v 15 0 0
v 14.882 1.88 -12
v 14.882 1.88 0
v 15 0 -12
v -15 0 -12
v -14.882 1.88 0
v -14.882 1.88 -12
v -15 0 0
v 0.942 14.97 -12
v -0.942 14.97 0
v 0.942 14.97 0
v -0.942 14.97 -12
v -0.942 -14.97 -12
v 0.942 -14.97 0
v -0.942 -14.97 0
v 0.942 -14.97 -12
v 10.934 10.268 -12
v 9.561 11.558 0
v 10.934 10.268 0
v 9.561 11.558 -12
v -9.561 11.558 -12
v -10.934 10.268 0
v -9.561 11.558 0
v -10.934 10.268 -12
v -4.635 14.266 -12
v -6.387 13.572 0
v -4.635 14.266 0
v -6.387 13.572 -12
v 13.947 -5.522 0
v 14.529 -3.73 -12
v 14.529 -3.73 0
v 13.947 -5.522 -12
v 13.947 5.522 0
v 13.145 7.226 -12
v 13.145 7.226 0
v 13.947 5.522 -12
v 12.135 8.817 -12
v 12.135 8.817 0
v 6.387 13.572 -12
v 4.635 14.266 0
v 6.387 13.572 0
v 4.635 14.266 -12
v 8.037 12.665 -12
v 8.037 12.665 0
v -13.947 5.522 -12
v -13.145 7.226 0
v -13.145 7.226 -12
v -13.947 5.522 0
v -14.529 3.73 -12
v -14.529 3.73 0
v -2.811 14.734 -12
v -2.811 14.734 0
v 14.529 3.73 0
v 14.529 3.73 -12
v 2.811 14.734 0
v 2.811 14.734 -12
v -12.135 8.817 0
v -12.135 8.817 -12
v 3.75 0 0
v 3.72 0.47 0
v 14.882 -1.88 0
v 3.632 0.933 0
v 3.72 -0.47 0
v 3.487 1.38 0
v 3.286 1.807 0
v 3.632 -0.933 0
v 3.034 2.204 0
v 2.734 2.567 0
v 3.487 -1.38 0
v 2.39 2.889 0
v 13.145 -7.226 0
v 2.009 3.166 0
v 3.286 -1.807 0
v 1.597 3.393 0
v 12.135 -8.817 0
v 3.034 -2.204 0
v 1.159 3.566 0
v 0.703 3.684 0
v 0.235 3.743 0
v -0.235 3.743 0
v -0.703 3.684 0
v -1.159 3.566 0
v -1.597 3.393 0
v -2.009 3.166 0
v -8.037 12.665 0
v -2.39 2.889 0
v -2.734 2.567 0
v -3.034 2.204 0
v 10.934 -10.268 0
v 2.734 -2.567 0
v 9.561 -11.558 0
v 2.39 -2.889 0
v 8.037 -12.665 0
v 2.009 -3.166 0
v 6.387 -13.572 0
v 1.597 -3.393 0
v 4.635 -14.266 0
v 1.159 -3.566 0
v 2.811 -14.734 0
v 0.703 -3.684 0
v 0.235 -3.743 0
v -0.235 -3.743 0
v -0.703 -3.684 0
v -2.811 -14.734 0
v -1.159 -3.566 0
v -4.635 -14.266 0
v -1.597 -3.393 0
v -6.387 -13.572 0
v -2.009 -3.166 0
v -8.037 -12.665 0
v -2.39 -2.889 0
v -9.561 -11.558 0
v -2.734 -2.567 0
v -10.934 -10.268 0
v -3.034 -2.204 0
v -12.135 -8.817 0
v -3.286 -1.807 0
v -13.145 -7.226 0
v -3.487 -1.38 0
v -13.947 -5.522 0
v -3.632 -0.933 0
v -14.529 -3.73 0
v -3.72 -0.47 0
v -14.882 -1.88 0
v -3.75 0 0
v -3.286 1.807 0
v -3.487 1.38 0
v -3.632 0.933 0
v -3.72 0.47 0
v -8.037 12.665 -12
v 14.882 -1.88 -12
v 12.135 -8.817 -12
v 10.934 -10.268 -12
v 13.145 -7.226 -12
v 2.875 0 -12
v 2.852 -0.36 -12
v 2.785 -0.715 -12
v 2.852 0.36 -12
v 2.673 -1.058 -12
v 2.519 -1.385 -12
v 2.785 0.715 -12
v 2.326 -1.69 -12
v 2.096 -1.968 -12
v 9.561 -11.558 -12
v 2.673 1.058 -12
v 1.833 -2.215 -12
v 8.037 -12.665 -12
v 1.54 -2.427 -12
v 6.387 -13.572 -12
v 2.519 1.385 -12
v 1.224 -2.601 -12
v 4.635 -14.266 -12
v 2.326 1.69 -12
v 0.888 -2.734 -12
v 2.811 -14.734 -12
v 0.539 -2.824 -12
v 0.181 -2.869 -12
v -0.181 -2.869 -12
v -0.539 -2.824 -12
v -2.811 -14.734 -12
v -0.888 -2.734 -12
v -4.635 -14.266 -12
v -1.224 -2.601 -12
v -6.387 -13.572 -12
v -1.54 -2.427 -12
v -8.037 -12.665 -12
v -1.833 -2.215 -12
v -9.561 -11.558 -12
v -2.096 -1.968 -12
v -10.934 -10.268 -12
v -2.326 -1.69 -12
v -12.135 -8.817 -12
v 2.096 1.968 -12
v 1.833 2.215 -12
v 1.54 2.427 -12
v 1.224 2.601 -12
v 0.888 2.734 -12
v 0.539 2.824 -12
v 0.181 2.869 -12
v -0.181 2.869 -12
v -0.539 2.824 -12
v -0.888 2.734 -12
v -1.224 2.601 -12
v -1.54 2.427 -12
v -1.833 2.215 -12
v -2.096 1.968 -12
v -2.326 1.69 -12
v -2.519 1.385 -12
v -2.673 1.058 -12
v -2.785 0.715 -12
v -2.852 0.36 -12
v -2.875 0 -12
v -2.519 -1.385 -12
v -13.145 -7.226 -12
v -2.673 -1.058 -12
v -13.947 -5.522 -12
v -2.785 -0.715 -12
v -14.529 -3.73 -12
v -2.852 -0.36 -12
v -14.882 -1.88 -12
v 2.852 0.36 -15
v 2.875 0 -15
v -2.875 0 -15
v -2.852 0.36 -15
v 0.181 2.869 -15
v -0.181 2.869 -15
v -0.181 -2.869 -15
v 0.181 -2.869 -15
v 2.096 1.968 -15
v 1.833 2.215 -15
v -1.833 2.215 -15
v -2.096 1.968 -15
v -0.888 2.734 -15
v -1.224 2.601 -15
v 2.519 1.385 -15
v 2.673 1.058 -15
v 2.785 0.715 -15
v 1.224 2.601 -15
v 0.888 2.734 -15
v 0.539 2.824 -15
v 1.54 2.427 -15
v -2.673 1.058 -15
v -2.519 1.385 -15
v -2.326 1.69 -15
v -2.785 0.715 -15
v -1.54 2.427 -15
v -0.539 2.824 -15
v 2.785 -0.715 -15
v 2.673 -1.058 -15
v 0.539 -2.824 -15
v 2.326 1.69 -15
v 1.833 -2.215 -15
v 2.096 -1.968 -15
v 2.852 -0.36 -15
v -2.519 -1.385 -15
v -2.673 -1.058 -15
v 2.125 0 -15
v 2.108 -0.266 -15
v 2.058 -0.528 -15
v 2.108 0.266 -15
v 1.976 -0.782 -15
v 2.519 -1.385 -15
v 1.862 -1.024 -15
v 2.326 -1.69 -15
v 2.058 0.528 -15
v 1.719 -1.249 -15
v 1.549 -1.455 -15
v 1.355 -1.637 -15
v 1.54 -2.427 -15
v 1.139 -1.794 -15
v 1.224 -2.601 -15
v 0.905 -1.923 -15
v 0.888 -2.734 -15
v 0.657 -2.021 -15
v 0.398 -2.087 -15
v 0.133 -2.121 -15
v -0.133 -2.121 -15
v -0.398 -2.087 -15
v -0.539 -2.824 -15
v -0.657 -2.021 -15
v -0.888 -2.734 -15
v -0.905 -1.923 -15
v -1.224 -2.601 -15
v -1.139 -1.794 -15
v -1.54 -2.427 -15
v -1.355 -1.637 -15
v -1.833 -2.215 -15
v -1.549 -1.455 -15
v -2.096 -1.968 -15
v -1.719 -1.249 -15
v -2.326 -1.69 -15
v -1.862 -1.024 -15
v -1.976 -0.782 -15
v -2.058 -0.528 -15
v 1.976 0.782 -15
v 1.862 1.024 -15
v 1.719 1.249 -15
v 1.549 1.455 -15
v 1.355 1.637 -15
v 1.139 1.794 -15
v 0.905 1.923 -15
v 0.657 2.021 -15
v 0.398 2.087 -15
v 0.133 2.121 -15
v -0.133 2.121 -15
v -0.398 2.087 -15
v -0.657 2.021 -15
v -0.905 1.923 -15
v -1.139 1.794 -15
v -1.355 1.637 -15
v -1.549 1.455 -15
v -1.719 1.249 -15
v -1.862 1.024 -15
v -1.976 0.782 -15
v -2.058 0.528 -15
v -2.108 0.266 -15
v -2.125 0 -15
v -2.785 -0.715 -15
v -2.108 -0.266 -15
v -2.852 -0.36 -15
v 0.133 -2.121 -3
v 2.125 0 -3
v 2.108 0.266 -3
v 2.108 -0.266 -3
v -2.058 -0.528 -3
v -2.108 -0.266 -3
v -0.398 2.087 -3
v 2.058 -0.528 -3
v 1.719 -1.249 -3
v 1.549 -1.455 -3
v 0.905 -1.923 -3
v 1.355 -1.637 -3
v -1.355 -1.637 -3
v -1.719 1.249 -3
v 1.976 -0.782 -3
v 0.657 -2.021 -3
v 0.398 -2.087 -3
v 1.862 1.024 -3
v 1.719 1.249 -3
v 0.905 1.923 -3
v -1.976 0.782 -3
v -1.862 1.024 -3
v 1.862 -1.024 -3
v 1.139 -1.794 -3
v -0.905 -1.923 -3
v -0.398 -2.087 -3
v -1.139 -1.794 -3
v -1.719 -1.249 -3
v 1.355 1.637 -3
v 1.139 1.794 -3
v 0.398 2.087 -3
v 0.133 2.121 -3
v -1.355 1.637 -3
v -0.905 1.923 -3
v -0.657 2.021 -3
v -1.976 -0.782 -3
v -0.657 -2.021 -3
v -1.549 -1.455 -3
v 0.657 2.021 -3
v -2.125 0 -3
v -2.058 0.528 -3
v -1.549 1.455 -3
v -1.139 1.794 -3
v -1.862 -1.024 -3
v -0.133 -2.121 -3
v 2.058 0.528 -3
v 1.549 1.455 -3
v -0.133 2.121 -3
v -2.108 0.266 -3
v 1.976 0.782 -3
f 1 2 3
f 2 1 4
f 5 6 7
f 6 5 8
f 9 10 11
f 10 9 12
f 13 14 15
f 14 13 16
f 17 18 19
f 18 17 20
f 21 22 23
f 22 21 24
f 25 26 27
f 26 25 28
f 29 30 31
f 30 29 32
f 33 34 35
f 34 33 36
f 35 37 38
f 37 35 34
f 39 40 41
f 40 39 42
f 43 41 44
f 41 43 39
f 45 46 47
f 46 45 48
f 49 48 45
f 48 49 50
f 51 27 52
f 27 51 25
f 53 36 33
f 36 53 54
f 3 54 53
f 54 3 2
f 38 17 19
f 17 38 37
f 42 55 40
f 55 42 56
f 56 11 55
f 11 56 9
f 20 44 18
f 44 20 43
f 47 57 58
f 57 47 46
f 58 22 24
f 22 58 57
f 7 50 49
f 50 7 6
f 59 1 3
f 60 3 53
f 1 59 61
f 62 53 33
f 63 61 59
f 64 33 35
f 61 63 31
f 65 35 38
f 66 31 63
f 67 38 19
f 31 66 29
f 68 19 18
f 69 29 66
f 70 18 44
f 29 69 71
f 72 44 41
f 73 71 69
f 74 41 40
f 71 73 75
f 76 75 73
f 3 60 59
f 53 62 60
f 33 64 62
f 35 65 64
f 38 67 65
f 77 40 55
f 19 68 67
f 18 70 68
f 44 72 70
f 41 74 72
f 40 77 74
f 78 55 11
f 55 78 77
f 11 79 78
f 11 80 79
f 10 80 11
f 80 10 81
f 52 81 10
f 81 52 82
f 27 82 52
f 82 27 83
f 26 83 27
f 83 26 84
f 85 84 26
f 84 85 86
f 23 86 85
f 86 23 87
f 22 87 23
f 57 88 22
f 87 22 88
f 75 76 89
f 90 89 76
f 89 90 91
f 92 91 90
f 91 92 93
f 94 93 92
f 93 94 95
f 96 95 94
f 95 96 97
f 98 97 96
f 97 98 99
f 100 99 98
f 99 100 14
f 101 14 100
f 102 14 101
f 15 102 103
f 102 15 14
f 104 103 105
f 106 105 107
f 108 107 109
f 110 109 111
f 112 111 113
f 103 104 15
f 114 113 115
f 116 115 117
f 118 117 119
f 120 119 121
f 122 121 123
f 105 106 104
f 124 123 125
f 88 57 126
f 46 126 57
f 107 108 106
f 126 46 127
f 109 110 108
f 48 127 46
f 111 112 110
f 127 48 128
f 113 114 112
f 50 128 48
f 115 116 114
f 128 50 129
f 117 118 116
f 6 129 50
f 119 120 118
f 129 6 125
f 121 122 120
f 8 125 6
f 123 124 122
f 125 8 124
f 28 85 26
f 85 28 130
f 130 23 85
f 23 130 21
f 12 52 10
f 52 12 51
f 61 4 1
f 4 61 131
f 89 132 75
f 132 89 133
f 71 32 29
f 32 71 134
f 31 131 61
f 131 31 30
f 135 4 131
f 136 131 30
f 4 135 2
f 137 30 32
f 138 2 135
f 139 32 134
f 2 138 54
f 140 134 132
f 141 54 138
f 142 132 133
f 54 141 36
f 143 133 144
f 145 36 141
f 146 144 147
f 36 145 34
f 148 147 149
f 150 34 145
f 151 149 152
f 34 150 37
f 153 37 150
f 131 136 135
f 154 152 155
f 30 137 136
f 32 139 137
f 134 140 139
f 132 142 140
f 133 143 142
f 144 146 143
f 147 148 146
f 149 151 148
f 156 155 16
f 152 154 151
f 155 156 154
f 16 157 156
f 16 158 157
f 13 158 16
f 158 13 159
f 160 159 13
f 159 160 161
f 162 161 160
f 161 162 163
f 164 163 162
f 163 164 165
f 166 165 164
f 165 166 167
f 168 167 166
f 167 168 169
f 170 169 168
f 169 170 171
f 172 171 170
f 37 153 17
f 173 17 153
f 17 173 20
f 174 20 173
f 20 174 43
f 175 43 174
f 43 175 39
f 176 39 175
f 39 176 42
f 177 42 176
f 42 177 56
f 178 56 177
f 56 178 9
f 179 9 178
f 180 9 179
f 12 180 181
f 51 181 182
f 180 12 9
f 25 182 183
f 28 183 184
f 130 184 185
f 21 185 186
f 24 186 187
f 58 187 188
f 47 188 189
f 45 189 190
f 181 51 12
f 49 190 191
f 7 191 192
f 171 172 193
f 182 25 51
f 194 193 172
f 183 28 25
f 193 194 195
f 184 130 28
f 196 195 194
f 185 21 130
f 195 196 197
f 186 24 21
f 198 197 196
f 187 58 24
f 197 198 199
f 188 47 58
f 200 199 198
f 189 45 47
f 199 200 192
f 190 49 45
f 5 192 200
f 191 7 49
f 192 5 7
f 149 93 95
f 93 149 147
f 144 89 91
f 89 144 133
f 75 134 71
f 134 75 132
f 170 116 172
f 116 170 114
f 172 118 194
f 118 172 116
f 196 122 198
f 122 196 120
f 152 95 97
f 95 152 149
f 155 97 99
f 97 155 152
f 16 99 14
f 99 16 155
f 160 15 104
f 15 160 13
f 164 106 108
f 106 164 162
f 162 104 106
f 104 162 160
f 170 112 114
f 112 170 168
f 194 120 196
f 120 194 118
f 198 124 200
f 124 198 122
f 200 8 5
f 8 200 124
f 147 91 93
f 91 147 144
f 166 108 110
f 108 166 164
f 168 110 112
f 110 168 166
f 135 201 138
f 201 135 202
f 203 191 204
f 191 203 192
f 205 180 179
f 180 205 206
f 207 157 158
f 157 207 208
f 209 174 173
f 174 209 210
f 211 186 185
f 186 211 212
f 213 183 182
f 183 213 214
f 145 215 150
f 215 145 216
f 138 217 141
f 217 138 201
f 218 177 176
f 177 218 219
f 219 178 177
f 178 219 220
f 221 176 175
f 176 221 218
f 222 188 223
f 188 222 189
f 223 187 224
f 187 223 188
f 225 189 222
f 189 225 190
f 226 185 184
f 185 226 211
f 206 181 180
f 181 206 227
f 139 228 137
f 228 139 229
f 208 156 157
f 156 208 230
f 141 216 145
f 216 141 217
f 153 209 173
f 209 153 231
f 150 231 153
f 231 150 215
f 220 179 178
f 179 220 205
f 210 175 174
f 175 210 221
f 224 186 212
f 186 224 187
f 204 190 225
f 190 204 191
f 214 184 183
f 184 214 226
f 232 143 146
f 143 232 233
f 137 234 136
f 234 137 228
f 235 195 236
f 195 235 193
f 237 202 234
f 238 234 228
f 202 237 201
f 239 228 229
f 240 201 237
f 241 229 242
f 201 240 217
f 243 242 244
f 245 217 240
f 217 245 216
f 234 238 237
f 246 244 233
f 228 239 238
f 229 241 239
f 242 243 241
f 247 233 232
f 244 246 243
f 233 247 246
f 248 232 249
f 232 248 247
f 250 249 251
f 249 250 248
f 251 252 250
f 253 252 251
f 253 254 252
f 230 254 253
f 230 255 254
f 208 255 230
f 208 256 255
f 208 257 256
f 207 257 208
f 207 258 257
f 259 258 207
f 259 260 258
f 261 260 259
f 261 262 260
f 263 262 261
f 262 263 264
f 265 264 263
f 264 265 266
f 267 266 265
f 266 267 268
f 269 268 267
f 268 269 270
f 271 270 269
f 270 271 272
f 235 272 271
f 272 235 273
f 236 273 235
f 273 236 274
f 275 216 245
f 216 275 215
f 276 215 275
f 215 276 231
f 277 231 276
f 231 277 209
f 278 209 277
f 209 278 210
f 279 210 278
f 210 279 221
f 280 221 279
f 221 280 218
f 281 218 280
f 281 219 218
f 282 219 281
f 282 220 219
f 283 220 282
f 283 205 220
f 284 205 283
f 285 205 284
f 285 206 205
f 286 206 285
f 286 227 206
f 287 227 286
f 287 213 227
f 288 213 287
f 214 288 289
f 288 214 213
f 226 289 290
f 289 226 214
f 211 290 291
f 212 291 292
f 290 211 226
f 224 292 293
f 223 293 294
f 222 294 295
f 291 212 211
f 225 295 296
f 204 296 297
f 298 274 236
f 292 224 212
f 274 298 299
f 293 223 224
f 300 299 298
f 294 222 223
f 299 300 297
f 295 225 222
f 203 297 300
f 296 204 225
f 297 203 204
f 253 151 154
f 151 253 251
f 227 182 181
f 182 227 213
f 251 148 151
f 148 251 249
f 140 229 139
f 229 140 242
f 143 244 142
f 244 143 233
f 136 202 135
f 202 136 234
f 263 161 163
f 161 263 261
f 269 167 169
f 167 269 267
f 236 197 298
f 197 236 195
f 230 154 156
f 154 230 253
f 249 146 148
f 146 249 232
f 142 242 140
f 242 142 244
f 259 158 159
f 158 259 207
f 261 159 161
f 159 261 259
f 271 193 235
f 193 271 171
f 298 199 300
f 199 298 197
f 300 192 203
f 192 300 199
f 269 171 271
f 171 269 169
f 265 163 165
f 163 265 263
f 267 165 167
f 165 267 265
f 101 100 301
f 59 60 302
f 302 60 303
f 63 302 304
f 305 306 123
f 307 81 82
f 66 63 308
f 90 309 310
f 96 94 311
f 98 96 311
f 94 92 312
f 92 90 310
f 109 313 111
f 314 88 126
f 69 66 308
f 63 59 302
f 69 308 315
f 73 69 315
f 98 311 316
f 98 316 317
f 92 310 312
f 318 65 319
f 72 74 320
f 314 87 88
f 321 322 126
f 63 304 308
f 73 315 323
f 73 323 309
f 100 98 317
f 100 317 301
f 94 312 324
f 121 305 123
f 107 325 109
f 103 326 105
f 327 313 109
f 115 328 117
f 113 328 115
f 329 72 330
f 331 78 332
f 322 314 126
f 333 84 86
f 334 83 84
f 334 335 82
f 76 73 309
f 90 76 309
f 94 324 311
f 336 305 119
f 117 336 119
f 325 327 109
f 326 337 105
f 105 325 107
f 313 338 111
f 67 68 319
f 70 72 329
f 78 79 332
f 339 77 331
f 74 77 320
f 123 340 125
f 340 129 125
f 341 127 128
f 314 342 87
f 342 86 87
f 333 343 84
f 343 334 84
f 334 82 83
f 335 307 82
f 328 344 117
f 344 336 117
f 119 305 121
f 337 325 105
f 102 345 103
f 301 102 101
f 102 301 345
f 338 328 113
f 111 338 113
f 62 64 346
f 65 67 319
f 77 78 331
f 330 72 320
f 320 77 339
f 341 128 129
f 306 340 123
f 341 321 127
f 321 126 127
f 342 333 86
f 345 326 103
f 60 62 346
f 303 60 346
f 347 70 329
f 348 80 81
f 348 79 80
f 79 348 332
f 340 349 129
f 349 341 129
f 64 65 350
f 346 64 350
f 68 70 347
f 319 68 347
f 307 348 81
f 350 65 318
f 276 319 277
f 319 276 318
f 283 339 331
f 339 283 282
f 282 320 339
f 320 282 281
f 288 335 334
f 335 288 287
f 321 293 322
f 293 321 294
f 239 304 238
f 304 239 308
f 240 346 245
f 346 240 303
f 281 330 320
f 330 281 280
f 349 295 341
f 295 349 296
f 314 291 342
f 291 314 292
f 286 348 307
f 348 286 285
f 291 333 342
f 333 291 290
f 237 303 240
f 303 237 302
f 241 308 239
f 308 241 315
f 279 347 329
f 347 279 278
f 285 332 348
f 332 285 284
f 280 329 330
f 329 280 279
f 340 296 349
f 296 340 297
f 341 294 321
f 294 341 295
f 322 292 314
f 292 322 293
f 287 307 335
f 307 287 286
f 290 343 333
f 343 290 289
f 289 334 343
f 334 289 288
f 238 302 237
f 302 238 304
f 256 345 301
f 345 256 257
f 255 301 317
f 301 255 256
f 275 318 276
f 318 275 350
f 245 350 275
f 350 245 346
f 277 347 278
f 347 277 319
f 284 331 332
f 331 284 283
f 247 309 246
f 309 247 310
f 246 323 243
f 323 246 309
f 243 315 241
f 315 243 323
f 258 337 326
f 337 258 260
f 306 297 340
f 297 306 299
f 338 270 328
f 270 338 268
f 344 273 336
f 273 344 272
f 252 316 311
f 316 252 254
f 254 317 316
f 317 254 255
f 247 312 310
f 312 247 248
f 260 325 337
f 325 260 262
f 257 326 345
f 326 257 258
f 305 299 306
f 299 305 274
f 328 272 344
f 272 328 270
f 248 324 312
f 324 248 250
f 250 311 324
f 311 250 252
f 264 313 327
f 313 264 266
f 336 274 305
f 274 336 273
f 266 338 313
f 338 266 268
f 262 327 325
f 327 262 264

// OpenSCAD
$fn = 50;


difference() {
	union() {
		translate(v = [0, 0, -12.0000000000]) {
			cylinder(h = 12, r = 15.0000000000);
		}
		translate(v = [0, 0, -15.0000000000]) {
			cylinder(h = 15, r = 2.8750000000);
		}
	}
	union() {
		translate(v = [0, 0, 0]) {
			rotate(a = [0, 0, 0]) {
				difference() {
					union() {
						translate(v = [0, 0, -15.0000000000]) {
							cylinder(h = 15, r = 2.0000000000);
						}
						translate(v = [0, 0, -3]) {
							cylinder(h = 3, r1 = 2.1250000000, r2 = 3.7500000000);
						}
						translate(v = [0, 0, -15.0000000000]) {
							cylinder(h = 15, r = 2.1250000000);
						}
						translate(v = [0, 0, -15.0000000000]) {
							cylinder(h = 15, r = 2.0000000000);
						}
					}
					union();
				}
			}
		}
	}
}
